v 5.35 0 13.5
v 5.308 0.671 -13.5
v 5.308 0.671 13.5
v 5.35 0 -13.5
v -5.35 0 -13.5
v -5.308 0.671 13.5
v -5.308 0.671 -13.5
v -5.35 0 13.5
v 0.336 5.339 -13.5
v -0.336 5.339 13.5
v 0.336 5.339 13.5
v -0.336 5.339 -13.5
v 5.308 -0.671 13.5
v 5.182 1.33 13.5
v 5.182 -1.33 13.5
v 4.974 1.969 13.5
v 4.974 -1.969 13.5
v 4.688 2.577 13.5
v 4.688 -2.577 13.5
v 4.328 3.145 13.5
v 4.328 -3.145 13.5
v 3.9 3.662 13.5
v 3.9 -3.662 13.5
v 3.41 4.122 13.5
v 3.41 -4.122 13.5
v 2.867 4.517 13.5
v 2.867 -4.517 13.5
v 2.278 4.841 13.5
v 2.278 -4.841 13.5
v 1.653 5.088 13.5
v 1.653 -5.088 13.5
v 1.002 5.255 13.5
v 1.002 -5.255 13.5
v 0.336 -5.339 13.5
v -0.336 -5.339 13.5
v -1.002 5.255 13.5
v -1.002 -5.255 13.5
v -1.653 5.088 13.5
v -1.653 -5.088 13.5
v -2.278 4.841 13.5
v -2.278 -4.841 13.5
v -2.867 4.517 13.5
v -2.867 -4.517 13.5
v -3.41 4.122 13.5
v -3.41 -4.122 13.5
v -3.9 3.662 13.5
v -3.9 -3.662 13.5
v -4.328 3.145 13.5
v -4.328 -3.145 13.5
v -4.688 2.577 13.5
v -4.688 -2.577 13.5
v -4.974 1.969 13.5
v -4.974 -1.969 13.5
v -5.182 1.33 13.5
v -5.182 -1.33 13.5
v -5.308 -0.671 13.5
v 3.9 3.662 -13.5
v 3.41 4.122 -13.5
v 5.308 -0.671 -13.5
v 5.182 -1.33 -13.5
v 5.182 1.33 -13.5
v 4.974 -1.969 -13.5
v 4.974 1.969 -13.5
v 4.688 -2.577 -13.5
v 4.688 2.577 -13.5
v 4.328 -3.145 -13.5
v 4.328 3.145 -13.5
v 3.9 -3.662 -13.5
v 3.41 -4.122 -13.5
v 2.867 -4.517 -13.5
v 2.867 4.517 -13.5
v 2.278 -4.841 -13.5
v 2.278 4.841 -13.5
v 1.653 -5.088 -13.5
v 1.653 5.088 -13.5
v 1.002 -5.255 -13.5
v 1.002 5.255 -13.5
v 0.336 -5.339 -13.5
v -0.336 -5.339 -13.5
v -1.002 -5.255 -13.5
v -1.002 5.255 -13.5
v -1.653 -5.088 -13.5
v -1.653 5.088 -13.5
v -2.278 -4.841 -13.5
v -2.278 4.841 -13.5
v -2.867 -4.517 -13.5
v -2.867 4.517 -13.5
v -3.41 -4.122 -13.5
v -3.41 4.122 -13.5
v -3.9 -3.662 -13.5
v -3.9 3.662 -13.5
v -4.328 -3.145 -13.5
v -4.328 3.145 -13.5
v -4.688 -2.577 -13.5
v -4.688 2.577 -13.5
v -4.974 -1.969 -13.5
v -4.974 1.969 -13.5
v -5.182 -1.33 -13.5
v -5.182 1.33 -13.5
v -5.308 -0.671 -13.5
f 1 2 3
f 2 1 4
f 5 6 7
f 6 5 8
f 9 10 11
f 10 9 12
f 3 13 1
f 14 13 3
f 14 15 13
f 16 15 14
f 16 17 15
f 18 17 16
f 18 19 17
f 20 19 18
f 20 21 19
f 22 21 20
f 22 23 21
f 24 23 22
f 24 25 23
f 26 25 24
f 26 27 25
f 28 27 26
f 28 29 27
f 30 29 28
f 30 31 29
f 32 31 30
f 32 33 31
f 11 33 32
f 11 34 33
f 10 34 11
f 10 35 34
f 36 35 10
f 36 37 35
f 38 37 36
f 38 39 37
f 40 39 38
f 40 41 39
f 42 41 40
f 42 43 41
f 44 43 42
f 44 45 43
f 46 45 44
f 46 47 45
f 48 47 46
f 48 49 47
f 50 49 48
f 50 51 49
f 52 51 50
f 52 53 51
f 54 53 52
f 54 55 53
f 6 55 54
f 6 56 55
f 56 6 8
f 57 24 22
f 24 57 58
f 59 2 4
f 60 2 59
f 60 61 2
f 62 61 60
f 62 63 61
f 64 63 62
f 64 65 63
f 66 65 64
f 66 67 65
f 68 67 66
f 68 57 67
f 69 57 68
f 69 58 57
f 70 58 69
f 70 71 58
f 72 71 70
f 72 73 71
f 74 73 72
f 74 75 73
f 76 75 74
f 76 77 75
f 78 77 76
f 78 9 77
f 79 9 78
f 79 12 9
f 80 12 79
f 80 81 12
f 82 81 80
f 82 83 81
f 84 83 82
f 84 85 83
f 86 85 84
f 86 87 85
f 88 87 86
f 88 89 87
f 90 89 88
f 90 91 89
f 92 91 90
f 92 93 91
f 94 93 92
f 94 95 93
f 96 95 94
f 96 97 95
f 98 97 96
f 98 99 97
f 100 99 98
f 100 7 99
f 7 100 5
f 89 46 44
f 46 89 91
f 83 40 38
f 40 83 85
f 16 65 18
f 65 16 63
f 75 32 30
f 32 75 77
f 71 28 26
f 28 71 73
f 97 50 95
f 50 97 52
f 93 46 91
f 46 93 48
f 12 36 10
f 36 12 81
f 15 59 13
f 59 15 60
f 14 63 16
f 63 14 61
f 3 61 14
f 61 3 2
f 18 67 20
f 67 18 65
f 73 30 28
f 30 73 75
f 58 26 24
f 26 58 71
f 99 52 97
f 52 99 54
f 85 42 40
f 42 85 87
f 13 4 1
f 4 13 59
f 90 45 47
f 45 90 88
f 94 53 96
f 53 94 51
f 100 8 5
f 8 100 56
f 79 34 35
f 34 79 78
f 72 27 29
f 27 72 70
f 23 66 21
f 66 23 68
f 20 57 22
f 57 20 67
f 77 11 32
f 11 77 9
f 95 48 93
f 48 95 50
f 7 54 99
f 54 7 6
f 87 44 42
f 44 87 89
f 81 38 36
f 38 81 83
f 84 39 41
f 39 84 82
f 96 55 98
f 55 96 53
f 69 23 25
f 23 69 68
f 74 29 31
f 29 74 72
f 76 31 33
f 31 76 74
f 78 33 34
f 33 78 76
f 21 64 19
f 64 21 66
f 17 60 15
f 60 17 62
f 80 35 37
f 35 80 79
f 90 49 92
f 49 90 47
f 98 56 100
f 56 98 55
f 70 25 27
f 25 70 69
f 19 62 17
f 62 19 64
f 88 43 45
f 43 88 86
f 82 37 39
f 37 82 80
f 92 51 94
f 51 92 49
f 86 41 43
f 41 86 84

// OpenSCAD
$fn = 50;


difference() {
	union() {
		translate(v = [0, 0, -13.5000000000]) {
			cylinder(h = 27, r = 5.3500000000);
		}
	}
	union() {
		translate(v = [0, 0, -100.0000000000]) {
			cylinder(h = 200, r = 0);
		}
	}
}
